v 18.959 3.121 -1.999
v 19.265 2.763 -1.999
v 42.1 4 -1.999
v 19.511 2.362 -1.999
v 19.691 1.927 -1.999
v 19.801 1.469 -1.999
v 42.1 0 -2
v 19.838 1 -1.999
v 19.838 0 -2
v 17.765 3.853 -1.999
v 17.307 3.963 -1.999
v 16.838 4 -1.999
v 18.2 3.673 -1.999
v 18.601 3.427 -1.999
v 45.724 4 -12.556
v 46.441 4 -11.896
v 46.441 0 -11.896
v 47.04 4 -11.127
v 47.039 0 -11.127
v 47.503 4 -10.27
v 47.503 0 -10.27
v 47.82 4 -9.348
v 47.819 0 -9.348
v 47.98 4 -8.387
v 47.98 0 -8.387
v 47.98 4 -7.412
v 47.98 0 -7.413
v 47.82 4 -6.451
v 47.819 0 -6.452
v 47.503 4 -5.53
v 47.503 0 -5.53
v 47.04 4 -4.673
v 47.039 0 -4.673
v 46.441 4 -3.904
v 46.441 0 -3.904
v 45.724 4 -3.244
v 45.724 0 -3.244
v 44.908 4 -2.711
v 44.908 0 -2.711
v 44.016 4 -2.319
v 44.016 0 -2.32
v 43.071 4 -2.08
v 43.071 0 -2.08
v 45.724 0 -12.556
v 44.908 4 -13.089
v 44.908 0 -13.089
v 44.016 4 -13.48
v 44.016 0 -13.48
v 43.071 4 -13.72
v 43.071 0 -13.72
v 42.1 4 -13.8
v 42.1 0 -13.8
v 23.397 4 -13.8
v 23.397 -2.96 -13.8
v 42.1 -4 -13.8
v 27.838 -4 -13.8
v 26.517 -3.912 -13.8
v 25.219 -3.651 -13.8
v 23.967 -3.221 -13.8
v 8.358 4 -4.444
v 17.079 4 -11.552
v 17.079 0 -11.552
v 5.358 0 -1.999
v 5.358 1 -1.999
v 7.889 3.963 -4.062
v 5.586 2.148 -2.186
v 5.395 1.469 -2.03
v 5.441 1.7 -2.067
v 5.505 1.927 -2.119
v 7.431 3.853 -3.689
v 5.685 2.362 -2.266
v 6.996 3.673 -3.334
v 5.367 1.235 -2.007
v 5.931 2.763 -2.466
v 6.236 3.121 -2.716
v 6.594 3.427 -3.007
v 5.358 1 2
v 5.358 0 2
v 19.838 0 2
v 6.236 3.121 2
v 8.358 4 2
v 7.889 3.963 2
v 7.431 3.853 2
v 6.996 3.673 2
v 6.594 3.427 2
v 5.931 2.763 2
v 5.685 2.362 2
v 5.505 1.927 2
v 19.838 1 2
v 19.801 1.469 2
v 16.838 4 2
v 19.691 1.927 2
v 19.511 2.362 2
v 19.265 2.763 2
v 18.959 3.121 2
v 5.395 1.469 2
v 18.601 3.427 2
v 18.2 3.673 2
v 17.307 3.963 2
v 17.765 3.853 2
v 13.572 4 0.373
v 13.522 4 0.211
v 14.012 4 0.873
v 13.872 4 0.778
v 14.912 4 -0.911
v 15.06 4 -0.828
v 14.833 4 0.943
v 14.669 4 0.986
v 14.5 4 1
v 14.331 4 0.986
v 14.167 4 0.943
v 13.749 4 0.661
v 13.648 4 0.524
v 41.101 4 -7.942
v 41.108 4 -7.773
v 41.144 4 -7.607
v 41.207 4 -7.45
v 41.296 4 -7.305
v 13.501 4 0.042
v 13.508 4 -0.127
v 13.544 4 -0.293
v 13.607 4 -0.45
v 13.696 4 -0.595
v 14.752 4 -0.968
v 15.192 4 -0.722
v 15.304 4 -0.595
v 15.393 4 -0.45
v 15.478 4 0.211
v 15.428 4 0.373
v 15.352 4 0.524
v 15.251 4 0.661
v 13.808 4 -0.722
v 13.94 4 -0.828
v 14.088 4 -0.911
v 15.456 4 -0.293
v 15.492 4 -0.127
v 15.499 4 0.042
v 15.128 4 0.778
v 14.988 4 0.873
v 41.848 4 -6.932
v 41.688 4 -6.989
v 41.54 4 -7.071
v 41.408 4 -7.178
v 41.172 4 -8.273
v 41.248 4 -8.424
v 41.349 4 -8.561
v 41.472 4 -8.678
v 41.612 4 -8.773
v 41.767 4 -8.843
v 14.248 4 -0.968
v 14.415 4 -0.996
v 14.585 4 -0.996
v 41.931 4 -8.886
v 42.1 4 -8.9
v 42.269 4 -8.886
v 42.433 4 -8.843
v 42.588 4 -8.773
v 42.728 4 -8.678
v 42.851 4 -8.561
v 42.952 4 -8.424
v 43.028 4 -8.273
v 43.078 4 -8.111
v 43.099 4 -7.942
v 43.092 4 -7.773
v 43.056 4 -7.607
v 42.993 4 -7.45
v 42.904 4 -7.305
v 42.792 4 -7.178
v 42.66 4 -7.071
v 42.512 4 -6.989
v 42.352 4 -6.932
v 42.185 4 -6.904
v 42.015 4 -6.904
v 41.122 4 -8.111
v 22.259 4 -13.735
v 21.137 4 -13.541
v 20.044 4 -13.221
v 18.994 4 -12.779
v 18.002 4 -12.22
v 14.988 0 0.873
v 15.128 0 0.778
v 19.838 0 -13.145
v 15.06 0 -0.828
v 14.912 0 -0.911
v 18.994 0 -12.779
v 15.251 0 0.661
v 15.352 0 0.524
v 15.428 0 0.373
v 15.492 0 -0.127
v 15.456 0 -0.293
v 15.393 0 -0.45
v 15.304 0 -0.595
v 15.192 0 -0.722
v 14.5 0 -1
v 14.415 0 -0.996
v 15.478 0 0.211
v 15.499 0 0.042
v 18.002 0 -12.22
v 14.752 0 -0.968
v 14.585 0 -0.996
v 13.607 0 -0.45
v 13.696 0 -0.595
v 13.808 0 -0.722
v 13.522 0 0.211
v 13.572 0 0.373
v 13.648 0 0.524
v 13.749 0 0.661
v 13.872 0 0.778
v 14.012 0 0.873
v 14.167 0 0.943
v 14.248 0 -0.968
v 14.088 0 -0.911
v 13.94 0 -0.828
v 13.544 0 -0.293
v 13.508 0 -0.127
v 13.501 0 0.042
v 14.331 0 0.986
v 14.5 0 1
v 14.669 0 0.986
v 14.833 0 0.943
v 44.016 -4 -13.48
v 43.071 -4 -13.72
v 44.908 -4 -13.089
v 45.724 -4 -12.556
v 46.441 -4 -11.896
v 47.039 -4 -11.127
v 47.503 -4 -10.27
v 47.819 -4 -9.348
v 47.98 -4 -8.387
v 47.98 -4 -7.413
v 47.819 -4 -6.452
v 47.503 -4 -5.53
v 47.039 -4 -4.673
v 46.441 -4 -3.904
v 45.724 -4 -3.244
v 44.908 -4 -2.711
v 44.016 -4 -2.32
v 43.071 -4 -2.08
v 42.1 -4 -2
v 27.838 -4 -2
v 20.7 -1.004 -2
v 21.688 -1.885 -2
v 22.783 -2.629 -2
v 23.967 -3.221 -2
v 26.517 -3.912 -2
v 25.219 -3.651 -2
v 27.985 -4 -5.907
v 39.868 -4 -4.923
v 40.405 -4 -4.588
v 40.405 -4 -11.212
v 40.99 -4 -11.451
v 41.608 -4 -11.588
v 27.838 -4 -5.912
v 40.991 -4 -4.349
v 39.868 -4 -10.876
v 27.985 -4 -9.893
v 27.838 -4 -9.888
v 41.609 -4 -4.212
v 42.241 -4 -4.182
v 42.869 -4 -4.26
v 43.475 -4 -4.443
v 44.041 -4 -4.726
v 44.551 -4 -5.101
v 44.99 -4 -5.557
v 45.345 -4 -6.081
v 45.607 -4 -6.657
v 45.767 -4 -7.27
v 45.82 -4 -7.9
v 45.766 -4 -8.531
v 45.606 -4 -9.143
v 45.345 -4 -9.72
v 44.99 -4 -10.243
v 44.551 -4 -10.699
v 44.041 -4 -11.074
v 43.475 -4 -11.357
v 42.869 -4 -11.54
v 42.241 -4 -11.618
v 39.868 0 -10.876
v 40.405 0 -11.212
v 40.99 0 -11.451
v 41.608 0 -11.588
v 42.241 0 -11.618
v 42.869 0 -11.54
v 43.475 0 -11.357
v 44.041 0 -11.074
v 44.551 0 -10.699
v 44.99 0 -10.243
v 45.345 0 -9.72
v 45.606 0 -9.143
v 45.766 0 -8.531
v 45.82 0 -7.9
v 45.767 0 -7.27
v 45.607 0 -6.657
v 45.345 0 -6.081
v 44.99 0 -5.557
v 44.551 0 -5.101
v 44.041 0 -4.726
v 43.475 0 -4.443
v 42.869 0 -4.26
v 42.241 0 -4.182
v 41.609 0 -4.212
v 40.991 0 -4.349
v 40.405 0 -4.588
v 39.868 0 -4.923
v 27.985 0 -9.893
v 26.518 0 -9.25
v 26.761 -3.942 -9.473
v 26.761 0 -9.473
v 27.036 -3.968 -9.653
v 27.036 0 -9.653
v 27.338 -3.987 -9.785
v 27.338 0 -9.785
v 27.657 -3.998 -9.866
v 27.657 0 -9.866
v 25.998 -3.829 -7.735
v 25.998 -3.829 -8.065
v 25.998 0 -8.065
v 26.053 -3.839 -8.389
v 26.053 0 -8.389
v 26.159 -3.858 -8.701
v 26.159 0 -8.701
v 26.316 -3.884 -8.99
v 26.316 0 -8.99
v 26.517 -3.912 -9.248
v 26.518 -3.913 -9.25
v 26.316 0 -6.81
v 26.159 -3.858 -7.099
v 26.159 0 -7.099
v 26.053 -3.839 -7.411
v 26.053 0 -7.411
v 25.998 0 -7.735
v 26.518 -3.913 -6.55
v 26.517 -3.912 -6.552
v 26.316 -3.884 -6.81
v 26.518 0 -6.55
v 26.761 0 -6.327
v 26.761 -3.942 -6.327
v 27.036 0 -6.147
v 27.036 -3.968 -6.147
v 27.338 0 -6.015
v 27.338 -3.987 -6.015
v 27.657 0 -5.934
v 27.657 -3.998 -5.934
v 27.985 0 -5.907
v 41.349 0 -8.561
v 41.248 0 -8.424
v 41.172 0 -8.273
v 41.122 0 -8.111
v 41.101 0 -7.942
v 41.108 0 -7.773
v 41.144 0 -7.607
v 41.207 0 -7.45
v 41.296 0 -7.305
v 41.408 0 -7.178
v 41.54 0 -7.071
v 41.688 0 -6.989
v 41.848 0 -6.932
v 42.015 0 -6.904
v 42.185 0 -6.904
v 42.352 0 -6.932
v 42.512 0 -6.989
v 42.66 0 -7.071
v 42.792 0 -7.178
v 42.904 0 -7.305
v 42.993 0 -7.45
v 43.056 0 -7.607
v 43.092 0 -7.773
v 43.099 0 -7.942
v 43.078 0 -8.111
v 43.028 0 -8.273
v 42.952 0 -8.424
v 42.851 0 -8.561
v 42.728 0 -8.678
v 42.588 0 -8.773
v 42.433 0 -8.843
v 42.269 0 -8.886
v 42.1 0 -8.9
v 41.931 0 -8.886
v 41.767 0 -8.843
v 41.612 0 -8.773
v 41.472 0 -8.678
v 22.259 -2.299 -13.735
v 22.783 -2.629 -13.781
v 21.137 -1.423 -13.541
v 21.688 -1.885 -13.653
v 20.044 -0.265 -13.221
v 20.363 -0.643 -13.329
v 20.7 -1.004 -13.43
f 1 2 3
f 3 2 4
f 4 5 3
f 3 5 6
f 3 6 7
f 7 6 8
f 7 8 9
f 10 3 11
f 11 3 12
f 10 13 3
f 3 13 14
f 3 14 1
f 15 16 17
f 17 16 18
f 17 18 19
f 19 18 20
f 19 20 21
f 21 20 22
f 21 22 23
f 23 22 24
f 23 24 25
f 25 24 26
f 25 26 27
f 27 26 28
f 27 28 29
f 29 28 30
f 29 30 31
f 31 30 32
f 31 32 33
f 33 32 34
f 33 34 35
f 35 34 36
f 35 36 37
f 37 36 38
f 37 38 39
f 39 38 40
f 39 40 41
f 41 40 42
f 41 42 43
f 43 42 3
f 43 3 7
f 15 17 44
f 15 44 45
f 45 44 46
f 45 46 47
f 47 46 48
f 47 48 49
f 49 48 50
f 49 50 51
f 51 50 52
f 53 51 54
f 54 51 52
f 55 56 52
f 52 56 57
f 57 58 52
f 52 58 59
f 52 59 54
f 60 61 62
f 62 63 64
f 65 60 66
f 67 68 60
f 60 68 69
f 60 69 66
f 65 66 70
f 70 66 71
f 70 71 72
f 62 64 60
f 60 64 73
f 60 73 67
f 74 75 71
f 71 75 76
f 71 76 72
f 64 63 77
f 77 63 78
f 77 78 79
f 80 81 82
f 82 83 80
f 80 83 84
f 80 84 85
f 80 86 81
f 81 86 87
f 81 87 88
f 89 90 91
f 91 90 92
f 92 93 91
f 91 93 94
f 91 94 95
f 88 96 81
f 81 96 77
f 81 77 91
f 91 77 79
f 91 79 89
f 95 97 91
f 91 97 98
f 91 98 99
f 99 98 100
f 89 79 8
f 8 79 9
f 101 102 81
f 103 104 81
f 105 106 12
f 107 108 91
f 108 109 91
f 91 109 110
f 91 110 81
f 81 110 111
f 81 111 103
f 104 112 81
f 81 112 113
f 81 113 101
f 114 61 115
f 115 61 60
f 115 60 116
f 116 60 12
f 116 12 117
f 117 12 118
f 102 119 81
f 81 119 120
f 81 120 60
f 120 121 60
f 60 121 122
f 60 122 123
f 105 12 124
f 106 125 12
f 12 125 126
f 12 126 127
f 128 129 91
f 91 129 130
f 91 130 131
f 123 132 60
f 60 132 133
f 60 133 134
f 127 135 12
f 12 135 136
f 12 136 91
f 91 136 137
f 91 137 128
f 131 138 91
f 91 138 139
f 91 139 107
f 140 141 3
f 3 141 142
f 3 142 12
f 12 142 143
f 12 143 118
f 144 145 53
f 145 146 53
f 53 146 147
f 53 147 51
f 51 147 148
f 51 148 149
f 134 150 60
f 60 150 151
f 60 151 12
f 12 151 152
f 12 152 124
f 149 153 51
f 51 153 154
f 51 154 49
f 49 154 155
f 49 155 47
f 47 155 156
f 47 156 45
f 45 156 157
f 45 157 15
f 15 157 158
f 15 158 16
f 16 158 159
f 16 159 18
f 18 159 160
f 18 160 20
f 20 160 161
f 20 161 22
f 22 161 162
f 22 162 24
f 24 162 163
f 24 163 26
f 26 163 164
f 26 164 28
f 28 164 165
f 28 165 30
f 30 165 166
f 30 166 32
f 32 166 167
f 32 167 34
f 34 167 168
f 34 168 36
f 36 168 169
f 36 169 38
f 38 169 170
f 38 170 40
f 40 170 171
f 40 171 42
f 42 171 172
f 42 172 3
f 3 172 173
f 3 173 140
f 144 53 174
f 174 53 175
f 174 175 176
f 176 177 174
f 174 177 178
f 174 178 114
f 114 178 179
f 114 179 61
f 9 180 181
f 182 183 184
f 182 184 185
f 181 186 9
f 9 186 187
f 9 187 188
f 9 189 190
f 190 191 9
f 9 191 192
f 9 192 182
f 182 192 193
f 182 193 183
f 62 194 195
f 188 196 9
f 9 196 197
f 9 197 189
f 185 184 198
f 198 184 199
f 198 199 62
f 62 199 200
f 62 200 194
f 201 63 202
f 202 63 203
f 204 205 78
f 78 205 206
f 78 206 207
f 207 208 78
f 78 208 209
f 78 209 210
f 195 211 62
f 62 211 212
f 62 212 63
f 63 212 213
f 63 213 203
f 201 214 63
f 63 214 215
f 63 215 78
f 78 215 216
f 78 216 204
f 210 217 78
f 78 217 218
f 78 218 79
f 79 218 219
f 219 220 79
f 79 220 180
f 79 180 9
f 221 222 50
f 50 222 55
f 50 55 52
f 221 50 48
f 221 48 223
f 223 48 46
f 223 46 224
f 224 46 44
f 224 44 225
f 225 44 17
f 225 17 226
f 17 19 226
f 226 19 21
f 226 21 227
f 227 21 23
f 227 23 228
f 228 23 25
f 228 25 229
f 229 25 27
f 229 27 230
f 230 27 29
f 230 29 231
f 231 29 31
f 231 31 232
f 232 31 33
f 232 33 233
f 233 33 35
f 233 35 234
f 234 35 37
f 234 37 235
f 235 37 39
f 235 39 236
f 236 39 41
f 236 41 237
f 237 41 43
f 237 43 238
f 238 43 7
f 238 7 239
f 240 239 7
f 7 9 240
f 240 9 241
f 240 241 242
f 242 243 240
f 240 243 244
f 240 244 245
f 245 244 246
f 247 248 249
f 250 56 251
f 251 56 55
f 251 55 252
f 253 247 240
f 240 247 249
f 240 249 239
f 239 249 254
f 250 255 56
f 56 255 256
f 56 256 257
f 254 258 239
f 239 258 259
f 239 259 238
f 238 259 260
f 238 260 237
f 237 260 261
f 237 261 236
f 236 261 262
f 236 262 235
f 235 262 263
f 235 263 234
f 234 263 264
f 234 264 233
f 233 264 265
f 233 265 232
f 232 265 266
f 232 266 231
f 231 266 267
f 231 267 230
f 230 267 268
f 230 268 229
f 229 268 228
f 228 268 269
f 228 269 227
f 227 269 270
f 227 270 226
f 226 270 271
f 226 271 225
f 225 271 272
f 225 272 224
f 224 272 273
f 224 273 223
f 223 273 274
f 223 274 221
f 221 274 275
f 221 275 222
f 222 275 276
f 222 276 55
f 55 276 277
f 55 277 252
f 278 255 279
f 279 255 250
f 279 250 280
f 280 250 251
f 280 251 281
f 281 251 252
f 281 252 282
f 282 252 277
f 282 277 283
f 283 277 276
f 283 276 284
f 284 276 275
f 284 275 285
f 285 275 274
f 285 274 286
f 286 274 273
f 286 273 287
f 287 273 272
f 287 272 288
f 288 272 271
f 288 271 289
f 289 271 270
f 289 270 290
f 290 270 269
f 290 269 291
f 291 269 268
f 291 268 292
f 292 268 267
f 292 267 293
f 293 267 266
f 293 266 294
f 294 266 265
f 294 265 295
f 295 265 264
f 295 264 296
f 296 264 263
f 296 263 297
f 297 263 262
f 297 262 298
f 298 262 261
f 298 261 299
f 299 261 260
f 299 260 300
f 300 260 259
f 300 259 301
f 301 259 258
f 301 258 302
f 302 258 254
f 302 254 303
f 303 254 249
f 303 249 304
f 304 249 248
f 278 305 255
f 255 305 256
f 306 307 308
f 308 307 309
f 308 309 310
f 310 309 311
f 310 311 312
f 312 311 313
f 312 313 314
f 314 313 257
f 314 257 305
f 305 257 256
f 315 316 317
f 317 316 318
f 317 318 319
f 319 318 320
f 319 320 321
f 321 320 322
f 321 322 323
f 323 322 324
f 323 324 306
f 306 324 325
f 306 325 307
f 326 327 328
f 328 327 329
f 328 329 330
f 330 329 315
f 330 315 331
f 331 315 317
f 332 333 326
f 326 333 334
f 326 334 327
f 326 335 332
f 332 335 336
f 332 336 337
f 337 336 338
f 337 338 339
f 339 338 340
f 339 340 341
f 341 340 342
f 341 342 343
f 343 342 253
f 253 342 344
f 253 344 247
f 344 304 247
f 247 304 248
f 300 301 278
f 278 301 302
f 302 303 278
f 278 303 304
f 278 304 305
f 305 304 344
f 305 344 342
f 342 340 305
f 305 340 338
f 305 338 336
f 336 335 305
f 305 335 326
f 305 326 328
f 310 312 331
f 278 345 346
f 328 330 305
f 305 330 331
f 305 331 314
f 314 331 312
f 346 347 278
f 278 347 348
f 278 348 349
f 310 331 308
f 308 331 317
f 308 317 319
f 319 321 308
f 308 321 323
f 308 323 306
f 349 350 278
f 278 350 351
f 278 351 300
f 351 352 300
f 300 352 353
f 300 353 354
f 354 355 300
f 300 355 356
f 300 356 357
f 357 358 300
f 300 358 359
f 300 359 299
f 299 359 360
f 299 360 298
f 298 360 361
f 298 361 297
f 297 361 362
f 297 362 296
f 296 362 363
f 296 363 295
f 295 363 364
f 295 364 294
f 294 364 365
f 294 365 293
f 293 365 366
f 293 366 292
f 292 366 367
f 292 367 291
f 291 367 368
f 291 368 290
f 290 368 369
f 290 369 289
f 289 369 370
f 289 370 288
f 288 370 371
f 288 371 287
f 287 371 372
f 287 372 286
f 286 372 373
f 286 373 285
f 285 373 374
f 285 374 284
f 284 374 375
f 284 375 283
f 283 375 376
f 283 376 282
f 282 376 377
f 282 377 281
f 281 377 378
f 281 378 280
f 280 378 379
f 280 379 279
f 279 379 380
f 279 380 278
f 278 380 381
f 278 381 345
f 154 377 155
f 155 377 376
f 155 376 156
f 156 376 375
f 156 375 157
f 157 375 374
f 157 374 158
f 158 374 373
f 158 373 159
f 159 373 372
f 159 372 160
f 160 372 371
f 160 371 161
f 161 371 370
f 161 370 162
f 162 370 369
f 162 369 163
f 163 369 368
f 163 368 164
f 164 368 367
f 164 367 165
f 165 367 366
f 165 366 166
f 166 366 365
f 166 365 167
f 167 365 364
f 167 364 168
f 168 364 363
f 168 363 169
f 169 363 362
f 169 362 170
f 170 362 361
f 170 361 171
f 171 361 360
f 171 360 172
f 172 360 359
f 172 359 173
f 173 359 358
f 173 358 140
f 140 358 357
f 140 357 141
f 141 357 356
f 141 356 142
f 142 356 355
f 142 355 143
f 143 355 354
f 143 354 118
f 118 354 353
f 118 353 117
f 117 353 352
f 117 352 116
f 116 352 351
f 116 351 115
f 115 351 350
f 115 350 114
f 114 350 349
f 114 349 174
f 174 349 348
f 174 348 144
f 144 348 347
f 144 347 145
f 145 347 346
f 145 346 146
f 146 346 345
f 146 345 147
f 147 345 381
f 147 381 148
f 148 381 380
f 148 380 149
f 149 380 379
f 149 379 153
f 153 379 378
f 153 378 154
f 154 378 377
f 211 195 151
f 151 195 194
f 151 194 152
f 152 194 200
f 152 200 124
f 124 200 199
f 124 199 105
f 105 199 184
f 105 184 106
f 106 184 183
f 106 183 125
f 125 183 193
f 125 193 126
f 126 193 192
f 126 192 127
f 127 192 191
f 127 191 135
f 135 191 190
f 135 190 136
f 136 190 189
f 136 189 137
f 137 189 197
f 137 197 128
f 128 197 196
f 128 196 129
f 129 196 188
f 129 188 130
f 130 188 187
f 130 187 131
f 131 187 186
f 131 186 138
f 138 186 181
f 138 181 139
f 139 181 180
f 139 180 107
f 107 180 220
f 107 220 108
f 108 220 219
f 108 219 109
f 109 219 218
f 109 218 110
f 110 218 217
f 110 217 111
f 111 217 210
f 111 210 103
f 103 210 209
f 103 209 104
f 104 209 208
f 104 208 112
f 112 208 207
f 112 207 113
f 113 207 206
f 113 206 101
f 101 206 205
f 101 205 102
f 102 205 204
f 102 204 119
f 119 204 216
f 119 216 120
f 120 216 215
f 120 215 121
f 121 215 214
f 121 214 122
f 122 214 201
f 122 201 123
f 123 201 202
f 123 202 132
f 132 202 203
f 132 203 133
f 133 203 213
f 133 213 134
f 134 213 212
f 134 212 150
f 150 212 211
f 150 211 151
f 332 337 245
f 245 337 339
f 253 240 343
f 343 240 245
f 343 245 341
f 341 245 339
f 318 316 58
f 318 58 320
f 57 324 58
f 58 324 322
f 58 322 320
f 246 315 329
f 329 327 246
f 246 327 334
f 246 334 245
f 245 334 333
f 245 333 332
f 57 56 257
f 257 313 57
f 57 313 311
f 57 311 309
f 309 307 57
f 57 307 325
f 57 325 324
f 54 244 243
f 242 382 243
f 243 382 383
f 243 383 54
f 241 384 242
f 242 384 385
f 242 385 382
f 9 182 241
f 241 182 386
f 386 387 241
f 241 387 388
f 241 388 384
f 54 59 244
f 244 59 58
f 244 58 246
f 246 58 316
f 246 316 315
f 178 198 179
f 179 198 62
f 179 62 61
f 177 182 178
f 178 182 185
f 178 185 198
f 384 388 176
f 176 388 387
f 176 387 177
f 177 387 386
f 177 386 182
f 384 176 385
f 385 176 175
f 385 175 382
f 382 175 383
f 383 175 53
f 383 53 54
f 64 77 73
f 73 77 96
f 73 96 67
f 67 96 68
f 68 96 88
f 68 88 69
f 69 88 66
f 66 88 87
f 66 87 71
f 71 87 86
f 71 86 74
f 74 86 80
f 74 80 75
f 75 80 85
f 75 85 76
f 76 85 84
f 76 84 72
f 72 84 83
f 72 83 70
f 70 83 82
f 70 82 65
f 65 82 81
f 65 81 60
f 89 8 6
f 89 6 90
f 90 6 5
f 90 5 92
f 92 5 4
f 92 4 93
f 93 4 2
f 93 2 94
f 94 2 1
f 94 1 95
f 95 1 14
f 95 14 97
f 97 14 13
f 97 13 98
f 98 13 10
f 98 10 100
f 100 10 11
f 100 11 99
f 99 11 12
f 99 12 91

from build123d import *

# Parameters (mm, degrees)
BOSS_EXTRUDE2_DEPTH = 4
BOSS_EXTRUDE3_DEPTH = 4
CUT_EXTRUDE1_DEPTH  = 4
SKETCH7_R           = 1
CUT_EXTRUDE2_DEPTH  = 51.104542171
SKETCH9_R           = 1
CUT_EXTRUDE8_DEPTH  = 51.581272683
FILLET1_R           = 10
FILLET2_R           = 10
FILLET3_R           = 3


with BuildPart() as part:
    # Sketch1 → Boss-Extrude2 (new body)
    with BuildSketch(Plane(origin=(0, 0, 0), x_dir=(1, 0, 0), z_dir=(0, 1, 0))):
        with BuildLine():
            Line((5.357809991, 1.999476122), (19.837809991, 13.8))
            Line((19.837809991, 13.8), (42.1, 13.8))
            ThreePointArc((42.1, 13.8), (48.000261939, 7.899738061), (42.1, 1.999476122))
            Line((42.1, 1.999476122), (19.837809991, 1.999476122))
            Line((19.837809991, 1.999476122), (19.837809991, -1.999476122))
            Line((19.837809991, -1.999476122), (5.357809991, -1.999476122))
            Line((5.357809991, -1.999476122), (5.357809991, 1.999476122))
        make_face()
    extrude(amount=BOSS_EXTRUDE2_DEPTH)

    # Sketch4 → Boss-Extrude3 (add)
    with BuildSketch(Plane(origin=(0, 0, 0), x_dir=(-1, 0, 0), z_dir=(0, -1, 0))):
        with BuildLine():
            Line((-19.837809991, 2), (-42.1, 2))
            ThreePointArc((-42.1, 2), (-48, 7.9), (-42.1, 13.8))
            Line((-42.1, 13.8), (-19.837809991, 13.8))
            Line((-19.837809991, 13.8), (-19.837809991, 2))
        make_face()
    extrude(amount=BOSS_EXTRUDE3_DEPTH)

    # Sketch6 → Cut-Extrude1 (cut)
    with BuildSketch(Plane.XZ.offset(4)):
        with BuildLine():
            Line((39.868301502, -4.92331906), (27.984789323, -5.906817464))
            ThreePointArc((27.984789323, -5.906817464), (25.991606786, -7.9), (27.984789323, -9.893182536))
            Line((27.984789323, -9.893182536), (39.867781655, -10.876291126))
            ThreePointArc((39.867781655, -10.876291126), (45.820363894, -7.900324883), (39.868301502, -4.92331906))
        make_face()
    extrude(amount=-CUT_EXTRUDE1_DEPTH, mode=Mode.SUBTRACT)

    # Sketch7 → Cut-Extrude2 (cut, through all)
    with BuildSketch(Plane.XZ):
        with Locations(Location((42.1, -7.9, 0), (0, 0, 270))):
            Circle(SKETCH7_R)
    extrude(amount=-CUT_EXTRUDE2_DEPTH, mode=Mode.SUBTRACT)

    # Sketch9 → Cut-Extrude8 (cut, through all)
    with BuildSketch(Plane(origin=(0, 4, 0), x_dir=(1, 0, 0), z_dir=(0, 1, 0))):
        with Locations(Location((14.5, 0, 0), (0, 0, 270))):
            Circle(SKETCH9_R)
    extrude(amount=-CUT_EXTRUDE8_DEPTH, mode=Mode.SUBTRACT)

    # Fillet1
    # the kernel refuses this fillet: 10 mm, written as the material it takes off along each edge
    with BuildSketch(Plane(origin=(19.837809991, -4, -33.8), x_dir=(1, 0, 0), z_dir=(0, 0, 1))) as fillet1_piece_1:
        with BuildLine():
            CenterArc((8, 10), FILLET1_R, 216.869897646, 53.130102354)
            Line((0, 4), (-0.16, 3.88))
            ThreePointArc((-0.16, 3.88), (-0.2, 2), (-0.2, 0))
            Line((-0.2, 0), (0, -0.2))
            Line((0, -0.2), (8, -0.2))
            Line((8, -0.2), (8, 0))
        make_face()
    extrude(amount=51.8, mode=Mode.SUBTRACT)

    # Fillet2
    fillet2_edges = [part.edges().sort_by_distance(p)[0] for p in [
        (19.837809991, 2, -13.8),
    ]]
    fillet(fillet2_edges, radius=FILLET2_R)

    # Fillet3
    fillet3_edges = [part.edges().sort_by_distance(p)[0] for p in [
        (5.357809991, 4, 0),
        (19.837809991, 4, 0),
    ]]
    fillet(fillet3_edges, radius=FILLET3_R)


solid = part.part
